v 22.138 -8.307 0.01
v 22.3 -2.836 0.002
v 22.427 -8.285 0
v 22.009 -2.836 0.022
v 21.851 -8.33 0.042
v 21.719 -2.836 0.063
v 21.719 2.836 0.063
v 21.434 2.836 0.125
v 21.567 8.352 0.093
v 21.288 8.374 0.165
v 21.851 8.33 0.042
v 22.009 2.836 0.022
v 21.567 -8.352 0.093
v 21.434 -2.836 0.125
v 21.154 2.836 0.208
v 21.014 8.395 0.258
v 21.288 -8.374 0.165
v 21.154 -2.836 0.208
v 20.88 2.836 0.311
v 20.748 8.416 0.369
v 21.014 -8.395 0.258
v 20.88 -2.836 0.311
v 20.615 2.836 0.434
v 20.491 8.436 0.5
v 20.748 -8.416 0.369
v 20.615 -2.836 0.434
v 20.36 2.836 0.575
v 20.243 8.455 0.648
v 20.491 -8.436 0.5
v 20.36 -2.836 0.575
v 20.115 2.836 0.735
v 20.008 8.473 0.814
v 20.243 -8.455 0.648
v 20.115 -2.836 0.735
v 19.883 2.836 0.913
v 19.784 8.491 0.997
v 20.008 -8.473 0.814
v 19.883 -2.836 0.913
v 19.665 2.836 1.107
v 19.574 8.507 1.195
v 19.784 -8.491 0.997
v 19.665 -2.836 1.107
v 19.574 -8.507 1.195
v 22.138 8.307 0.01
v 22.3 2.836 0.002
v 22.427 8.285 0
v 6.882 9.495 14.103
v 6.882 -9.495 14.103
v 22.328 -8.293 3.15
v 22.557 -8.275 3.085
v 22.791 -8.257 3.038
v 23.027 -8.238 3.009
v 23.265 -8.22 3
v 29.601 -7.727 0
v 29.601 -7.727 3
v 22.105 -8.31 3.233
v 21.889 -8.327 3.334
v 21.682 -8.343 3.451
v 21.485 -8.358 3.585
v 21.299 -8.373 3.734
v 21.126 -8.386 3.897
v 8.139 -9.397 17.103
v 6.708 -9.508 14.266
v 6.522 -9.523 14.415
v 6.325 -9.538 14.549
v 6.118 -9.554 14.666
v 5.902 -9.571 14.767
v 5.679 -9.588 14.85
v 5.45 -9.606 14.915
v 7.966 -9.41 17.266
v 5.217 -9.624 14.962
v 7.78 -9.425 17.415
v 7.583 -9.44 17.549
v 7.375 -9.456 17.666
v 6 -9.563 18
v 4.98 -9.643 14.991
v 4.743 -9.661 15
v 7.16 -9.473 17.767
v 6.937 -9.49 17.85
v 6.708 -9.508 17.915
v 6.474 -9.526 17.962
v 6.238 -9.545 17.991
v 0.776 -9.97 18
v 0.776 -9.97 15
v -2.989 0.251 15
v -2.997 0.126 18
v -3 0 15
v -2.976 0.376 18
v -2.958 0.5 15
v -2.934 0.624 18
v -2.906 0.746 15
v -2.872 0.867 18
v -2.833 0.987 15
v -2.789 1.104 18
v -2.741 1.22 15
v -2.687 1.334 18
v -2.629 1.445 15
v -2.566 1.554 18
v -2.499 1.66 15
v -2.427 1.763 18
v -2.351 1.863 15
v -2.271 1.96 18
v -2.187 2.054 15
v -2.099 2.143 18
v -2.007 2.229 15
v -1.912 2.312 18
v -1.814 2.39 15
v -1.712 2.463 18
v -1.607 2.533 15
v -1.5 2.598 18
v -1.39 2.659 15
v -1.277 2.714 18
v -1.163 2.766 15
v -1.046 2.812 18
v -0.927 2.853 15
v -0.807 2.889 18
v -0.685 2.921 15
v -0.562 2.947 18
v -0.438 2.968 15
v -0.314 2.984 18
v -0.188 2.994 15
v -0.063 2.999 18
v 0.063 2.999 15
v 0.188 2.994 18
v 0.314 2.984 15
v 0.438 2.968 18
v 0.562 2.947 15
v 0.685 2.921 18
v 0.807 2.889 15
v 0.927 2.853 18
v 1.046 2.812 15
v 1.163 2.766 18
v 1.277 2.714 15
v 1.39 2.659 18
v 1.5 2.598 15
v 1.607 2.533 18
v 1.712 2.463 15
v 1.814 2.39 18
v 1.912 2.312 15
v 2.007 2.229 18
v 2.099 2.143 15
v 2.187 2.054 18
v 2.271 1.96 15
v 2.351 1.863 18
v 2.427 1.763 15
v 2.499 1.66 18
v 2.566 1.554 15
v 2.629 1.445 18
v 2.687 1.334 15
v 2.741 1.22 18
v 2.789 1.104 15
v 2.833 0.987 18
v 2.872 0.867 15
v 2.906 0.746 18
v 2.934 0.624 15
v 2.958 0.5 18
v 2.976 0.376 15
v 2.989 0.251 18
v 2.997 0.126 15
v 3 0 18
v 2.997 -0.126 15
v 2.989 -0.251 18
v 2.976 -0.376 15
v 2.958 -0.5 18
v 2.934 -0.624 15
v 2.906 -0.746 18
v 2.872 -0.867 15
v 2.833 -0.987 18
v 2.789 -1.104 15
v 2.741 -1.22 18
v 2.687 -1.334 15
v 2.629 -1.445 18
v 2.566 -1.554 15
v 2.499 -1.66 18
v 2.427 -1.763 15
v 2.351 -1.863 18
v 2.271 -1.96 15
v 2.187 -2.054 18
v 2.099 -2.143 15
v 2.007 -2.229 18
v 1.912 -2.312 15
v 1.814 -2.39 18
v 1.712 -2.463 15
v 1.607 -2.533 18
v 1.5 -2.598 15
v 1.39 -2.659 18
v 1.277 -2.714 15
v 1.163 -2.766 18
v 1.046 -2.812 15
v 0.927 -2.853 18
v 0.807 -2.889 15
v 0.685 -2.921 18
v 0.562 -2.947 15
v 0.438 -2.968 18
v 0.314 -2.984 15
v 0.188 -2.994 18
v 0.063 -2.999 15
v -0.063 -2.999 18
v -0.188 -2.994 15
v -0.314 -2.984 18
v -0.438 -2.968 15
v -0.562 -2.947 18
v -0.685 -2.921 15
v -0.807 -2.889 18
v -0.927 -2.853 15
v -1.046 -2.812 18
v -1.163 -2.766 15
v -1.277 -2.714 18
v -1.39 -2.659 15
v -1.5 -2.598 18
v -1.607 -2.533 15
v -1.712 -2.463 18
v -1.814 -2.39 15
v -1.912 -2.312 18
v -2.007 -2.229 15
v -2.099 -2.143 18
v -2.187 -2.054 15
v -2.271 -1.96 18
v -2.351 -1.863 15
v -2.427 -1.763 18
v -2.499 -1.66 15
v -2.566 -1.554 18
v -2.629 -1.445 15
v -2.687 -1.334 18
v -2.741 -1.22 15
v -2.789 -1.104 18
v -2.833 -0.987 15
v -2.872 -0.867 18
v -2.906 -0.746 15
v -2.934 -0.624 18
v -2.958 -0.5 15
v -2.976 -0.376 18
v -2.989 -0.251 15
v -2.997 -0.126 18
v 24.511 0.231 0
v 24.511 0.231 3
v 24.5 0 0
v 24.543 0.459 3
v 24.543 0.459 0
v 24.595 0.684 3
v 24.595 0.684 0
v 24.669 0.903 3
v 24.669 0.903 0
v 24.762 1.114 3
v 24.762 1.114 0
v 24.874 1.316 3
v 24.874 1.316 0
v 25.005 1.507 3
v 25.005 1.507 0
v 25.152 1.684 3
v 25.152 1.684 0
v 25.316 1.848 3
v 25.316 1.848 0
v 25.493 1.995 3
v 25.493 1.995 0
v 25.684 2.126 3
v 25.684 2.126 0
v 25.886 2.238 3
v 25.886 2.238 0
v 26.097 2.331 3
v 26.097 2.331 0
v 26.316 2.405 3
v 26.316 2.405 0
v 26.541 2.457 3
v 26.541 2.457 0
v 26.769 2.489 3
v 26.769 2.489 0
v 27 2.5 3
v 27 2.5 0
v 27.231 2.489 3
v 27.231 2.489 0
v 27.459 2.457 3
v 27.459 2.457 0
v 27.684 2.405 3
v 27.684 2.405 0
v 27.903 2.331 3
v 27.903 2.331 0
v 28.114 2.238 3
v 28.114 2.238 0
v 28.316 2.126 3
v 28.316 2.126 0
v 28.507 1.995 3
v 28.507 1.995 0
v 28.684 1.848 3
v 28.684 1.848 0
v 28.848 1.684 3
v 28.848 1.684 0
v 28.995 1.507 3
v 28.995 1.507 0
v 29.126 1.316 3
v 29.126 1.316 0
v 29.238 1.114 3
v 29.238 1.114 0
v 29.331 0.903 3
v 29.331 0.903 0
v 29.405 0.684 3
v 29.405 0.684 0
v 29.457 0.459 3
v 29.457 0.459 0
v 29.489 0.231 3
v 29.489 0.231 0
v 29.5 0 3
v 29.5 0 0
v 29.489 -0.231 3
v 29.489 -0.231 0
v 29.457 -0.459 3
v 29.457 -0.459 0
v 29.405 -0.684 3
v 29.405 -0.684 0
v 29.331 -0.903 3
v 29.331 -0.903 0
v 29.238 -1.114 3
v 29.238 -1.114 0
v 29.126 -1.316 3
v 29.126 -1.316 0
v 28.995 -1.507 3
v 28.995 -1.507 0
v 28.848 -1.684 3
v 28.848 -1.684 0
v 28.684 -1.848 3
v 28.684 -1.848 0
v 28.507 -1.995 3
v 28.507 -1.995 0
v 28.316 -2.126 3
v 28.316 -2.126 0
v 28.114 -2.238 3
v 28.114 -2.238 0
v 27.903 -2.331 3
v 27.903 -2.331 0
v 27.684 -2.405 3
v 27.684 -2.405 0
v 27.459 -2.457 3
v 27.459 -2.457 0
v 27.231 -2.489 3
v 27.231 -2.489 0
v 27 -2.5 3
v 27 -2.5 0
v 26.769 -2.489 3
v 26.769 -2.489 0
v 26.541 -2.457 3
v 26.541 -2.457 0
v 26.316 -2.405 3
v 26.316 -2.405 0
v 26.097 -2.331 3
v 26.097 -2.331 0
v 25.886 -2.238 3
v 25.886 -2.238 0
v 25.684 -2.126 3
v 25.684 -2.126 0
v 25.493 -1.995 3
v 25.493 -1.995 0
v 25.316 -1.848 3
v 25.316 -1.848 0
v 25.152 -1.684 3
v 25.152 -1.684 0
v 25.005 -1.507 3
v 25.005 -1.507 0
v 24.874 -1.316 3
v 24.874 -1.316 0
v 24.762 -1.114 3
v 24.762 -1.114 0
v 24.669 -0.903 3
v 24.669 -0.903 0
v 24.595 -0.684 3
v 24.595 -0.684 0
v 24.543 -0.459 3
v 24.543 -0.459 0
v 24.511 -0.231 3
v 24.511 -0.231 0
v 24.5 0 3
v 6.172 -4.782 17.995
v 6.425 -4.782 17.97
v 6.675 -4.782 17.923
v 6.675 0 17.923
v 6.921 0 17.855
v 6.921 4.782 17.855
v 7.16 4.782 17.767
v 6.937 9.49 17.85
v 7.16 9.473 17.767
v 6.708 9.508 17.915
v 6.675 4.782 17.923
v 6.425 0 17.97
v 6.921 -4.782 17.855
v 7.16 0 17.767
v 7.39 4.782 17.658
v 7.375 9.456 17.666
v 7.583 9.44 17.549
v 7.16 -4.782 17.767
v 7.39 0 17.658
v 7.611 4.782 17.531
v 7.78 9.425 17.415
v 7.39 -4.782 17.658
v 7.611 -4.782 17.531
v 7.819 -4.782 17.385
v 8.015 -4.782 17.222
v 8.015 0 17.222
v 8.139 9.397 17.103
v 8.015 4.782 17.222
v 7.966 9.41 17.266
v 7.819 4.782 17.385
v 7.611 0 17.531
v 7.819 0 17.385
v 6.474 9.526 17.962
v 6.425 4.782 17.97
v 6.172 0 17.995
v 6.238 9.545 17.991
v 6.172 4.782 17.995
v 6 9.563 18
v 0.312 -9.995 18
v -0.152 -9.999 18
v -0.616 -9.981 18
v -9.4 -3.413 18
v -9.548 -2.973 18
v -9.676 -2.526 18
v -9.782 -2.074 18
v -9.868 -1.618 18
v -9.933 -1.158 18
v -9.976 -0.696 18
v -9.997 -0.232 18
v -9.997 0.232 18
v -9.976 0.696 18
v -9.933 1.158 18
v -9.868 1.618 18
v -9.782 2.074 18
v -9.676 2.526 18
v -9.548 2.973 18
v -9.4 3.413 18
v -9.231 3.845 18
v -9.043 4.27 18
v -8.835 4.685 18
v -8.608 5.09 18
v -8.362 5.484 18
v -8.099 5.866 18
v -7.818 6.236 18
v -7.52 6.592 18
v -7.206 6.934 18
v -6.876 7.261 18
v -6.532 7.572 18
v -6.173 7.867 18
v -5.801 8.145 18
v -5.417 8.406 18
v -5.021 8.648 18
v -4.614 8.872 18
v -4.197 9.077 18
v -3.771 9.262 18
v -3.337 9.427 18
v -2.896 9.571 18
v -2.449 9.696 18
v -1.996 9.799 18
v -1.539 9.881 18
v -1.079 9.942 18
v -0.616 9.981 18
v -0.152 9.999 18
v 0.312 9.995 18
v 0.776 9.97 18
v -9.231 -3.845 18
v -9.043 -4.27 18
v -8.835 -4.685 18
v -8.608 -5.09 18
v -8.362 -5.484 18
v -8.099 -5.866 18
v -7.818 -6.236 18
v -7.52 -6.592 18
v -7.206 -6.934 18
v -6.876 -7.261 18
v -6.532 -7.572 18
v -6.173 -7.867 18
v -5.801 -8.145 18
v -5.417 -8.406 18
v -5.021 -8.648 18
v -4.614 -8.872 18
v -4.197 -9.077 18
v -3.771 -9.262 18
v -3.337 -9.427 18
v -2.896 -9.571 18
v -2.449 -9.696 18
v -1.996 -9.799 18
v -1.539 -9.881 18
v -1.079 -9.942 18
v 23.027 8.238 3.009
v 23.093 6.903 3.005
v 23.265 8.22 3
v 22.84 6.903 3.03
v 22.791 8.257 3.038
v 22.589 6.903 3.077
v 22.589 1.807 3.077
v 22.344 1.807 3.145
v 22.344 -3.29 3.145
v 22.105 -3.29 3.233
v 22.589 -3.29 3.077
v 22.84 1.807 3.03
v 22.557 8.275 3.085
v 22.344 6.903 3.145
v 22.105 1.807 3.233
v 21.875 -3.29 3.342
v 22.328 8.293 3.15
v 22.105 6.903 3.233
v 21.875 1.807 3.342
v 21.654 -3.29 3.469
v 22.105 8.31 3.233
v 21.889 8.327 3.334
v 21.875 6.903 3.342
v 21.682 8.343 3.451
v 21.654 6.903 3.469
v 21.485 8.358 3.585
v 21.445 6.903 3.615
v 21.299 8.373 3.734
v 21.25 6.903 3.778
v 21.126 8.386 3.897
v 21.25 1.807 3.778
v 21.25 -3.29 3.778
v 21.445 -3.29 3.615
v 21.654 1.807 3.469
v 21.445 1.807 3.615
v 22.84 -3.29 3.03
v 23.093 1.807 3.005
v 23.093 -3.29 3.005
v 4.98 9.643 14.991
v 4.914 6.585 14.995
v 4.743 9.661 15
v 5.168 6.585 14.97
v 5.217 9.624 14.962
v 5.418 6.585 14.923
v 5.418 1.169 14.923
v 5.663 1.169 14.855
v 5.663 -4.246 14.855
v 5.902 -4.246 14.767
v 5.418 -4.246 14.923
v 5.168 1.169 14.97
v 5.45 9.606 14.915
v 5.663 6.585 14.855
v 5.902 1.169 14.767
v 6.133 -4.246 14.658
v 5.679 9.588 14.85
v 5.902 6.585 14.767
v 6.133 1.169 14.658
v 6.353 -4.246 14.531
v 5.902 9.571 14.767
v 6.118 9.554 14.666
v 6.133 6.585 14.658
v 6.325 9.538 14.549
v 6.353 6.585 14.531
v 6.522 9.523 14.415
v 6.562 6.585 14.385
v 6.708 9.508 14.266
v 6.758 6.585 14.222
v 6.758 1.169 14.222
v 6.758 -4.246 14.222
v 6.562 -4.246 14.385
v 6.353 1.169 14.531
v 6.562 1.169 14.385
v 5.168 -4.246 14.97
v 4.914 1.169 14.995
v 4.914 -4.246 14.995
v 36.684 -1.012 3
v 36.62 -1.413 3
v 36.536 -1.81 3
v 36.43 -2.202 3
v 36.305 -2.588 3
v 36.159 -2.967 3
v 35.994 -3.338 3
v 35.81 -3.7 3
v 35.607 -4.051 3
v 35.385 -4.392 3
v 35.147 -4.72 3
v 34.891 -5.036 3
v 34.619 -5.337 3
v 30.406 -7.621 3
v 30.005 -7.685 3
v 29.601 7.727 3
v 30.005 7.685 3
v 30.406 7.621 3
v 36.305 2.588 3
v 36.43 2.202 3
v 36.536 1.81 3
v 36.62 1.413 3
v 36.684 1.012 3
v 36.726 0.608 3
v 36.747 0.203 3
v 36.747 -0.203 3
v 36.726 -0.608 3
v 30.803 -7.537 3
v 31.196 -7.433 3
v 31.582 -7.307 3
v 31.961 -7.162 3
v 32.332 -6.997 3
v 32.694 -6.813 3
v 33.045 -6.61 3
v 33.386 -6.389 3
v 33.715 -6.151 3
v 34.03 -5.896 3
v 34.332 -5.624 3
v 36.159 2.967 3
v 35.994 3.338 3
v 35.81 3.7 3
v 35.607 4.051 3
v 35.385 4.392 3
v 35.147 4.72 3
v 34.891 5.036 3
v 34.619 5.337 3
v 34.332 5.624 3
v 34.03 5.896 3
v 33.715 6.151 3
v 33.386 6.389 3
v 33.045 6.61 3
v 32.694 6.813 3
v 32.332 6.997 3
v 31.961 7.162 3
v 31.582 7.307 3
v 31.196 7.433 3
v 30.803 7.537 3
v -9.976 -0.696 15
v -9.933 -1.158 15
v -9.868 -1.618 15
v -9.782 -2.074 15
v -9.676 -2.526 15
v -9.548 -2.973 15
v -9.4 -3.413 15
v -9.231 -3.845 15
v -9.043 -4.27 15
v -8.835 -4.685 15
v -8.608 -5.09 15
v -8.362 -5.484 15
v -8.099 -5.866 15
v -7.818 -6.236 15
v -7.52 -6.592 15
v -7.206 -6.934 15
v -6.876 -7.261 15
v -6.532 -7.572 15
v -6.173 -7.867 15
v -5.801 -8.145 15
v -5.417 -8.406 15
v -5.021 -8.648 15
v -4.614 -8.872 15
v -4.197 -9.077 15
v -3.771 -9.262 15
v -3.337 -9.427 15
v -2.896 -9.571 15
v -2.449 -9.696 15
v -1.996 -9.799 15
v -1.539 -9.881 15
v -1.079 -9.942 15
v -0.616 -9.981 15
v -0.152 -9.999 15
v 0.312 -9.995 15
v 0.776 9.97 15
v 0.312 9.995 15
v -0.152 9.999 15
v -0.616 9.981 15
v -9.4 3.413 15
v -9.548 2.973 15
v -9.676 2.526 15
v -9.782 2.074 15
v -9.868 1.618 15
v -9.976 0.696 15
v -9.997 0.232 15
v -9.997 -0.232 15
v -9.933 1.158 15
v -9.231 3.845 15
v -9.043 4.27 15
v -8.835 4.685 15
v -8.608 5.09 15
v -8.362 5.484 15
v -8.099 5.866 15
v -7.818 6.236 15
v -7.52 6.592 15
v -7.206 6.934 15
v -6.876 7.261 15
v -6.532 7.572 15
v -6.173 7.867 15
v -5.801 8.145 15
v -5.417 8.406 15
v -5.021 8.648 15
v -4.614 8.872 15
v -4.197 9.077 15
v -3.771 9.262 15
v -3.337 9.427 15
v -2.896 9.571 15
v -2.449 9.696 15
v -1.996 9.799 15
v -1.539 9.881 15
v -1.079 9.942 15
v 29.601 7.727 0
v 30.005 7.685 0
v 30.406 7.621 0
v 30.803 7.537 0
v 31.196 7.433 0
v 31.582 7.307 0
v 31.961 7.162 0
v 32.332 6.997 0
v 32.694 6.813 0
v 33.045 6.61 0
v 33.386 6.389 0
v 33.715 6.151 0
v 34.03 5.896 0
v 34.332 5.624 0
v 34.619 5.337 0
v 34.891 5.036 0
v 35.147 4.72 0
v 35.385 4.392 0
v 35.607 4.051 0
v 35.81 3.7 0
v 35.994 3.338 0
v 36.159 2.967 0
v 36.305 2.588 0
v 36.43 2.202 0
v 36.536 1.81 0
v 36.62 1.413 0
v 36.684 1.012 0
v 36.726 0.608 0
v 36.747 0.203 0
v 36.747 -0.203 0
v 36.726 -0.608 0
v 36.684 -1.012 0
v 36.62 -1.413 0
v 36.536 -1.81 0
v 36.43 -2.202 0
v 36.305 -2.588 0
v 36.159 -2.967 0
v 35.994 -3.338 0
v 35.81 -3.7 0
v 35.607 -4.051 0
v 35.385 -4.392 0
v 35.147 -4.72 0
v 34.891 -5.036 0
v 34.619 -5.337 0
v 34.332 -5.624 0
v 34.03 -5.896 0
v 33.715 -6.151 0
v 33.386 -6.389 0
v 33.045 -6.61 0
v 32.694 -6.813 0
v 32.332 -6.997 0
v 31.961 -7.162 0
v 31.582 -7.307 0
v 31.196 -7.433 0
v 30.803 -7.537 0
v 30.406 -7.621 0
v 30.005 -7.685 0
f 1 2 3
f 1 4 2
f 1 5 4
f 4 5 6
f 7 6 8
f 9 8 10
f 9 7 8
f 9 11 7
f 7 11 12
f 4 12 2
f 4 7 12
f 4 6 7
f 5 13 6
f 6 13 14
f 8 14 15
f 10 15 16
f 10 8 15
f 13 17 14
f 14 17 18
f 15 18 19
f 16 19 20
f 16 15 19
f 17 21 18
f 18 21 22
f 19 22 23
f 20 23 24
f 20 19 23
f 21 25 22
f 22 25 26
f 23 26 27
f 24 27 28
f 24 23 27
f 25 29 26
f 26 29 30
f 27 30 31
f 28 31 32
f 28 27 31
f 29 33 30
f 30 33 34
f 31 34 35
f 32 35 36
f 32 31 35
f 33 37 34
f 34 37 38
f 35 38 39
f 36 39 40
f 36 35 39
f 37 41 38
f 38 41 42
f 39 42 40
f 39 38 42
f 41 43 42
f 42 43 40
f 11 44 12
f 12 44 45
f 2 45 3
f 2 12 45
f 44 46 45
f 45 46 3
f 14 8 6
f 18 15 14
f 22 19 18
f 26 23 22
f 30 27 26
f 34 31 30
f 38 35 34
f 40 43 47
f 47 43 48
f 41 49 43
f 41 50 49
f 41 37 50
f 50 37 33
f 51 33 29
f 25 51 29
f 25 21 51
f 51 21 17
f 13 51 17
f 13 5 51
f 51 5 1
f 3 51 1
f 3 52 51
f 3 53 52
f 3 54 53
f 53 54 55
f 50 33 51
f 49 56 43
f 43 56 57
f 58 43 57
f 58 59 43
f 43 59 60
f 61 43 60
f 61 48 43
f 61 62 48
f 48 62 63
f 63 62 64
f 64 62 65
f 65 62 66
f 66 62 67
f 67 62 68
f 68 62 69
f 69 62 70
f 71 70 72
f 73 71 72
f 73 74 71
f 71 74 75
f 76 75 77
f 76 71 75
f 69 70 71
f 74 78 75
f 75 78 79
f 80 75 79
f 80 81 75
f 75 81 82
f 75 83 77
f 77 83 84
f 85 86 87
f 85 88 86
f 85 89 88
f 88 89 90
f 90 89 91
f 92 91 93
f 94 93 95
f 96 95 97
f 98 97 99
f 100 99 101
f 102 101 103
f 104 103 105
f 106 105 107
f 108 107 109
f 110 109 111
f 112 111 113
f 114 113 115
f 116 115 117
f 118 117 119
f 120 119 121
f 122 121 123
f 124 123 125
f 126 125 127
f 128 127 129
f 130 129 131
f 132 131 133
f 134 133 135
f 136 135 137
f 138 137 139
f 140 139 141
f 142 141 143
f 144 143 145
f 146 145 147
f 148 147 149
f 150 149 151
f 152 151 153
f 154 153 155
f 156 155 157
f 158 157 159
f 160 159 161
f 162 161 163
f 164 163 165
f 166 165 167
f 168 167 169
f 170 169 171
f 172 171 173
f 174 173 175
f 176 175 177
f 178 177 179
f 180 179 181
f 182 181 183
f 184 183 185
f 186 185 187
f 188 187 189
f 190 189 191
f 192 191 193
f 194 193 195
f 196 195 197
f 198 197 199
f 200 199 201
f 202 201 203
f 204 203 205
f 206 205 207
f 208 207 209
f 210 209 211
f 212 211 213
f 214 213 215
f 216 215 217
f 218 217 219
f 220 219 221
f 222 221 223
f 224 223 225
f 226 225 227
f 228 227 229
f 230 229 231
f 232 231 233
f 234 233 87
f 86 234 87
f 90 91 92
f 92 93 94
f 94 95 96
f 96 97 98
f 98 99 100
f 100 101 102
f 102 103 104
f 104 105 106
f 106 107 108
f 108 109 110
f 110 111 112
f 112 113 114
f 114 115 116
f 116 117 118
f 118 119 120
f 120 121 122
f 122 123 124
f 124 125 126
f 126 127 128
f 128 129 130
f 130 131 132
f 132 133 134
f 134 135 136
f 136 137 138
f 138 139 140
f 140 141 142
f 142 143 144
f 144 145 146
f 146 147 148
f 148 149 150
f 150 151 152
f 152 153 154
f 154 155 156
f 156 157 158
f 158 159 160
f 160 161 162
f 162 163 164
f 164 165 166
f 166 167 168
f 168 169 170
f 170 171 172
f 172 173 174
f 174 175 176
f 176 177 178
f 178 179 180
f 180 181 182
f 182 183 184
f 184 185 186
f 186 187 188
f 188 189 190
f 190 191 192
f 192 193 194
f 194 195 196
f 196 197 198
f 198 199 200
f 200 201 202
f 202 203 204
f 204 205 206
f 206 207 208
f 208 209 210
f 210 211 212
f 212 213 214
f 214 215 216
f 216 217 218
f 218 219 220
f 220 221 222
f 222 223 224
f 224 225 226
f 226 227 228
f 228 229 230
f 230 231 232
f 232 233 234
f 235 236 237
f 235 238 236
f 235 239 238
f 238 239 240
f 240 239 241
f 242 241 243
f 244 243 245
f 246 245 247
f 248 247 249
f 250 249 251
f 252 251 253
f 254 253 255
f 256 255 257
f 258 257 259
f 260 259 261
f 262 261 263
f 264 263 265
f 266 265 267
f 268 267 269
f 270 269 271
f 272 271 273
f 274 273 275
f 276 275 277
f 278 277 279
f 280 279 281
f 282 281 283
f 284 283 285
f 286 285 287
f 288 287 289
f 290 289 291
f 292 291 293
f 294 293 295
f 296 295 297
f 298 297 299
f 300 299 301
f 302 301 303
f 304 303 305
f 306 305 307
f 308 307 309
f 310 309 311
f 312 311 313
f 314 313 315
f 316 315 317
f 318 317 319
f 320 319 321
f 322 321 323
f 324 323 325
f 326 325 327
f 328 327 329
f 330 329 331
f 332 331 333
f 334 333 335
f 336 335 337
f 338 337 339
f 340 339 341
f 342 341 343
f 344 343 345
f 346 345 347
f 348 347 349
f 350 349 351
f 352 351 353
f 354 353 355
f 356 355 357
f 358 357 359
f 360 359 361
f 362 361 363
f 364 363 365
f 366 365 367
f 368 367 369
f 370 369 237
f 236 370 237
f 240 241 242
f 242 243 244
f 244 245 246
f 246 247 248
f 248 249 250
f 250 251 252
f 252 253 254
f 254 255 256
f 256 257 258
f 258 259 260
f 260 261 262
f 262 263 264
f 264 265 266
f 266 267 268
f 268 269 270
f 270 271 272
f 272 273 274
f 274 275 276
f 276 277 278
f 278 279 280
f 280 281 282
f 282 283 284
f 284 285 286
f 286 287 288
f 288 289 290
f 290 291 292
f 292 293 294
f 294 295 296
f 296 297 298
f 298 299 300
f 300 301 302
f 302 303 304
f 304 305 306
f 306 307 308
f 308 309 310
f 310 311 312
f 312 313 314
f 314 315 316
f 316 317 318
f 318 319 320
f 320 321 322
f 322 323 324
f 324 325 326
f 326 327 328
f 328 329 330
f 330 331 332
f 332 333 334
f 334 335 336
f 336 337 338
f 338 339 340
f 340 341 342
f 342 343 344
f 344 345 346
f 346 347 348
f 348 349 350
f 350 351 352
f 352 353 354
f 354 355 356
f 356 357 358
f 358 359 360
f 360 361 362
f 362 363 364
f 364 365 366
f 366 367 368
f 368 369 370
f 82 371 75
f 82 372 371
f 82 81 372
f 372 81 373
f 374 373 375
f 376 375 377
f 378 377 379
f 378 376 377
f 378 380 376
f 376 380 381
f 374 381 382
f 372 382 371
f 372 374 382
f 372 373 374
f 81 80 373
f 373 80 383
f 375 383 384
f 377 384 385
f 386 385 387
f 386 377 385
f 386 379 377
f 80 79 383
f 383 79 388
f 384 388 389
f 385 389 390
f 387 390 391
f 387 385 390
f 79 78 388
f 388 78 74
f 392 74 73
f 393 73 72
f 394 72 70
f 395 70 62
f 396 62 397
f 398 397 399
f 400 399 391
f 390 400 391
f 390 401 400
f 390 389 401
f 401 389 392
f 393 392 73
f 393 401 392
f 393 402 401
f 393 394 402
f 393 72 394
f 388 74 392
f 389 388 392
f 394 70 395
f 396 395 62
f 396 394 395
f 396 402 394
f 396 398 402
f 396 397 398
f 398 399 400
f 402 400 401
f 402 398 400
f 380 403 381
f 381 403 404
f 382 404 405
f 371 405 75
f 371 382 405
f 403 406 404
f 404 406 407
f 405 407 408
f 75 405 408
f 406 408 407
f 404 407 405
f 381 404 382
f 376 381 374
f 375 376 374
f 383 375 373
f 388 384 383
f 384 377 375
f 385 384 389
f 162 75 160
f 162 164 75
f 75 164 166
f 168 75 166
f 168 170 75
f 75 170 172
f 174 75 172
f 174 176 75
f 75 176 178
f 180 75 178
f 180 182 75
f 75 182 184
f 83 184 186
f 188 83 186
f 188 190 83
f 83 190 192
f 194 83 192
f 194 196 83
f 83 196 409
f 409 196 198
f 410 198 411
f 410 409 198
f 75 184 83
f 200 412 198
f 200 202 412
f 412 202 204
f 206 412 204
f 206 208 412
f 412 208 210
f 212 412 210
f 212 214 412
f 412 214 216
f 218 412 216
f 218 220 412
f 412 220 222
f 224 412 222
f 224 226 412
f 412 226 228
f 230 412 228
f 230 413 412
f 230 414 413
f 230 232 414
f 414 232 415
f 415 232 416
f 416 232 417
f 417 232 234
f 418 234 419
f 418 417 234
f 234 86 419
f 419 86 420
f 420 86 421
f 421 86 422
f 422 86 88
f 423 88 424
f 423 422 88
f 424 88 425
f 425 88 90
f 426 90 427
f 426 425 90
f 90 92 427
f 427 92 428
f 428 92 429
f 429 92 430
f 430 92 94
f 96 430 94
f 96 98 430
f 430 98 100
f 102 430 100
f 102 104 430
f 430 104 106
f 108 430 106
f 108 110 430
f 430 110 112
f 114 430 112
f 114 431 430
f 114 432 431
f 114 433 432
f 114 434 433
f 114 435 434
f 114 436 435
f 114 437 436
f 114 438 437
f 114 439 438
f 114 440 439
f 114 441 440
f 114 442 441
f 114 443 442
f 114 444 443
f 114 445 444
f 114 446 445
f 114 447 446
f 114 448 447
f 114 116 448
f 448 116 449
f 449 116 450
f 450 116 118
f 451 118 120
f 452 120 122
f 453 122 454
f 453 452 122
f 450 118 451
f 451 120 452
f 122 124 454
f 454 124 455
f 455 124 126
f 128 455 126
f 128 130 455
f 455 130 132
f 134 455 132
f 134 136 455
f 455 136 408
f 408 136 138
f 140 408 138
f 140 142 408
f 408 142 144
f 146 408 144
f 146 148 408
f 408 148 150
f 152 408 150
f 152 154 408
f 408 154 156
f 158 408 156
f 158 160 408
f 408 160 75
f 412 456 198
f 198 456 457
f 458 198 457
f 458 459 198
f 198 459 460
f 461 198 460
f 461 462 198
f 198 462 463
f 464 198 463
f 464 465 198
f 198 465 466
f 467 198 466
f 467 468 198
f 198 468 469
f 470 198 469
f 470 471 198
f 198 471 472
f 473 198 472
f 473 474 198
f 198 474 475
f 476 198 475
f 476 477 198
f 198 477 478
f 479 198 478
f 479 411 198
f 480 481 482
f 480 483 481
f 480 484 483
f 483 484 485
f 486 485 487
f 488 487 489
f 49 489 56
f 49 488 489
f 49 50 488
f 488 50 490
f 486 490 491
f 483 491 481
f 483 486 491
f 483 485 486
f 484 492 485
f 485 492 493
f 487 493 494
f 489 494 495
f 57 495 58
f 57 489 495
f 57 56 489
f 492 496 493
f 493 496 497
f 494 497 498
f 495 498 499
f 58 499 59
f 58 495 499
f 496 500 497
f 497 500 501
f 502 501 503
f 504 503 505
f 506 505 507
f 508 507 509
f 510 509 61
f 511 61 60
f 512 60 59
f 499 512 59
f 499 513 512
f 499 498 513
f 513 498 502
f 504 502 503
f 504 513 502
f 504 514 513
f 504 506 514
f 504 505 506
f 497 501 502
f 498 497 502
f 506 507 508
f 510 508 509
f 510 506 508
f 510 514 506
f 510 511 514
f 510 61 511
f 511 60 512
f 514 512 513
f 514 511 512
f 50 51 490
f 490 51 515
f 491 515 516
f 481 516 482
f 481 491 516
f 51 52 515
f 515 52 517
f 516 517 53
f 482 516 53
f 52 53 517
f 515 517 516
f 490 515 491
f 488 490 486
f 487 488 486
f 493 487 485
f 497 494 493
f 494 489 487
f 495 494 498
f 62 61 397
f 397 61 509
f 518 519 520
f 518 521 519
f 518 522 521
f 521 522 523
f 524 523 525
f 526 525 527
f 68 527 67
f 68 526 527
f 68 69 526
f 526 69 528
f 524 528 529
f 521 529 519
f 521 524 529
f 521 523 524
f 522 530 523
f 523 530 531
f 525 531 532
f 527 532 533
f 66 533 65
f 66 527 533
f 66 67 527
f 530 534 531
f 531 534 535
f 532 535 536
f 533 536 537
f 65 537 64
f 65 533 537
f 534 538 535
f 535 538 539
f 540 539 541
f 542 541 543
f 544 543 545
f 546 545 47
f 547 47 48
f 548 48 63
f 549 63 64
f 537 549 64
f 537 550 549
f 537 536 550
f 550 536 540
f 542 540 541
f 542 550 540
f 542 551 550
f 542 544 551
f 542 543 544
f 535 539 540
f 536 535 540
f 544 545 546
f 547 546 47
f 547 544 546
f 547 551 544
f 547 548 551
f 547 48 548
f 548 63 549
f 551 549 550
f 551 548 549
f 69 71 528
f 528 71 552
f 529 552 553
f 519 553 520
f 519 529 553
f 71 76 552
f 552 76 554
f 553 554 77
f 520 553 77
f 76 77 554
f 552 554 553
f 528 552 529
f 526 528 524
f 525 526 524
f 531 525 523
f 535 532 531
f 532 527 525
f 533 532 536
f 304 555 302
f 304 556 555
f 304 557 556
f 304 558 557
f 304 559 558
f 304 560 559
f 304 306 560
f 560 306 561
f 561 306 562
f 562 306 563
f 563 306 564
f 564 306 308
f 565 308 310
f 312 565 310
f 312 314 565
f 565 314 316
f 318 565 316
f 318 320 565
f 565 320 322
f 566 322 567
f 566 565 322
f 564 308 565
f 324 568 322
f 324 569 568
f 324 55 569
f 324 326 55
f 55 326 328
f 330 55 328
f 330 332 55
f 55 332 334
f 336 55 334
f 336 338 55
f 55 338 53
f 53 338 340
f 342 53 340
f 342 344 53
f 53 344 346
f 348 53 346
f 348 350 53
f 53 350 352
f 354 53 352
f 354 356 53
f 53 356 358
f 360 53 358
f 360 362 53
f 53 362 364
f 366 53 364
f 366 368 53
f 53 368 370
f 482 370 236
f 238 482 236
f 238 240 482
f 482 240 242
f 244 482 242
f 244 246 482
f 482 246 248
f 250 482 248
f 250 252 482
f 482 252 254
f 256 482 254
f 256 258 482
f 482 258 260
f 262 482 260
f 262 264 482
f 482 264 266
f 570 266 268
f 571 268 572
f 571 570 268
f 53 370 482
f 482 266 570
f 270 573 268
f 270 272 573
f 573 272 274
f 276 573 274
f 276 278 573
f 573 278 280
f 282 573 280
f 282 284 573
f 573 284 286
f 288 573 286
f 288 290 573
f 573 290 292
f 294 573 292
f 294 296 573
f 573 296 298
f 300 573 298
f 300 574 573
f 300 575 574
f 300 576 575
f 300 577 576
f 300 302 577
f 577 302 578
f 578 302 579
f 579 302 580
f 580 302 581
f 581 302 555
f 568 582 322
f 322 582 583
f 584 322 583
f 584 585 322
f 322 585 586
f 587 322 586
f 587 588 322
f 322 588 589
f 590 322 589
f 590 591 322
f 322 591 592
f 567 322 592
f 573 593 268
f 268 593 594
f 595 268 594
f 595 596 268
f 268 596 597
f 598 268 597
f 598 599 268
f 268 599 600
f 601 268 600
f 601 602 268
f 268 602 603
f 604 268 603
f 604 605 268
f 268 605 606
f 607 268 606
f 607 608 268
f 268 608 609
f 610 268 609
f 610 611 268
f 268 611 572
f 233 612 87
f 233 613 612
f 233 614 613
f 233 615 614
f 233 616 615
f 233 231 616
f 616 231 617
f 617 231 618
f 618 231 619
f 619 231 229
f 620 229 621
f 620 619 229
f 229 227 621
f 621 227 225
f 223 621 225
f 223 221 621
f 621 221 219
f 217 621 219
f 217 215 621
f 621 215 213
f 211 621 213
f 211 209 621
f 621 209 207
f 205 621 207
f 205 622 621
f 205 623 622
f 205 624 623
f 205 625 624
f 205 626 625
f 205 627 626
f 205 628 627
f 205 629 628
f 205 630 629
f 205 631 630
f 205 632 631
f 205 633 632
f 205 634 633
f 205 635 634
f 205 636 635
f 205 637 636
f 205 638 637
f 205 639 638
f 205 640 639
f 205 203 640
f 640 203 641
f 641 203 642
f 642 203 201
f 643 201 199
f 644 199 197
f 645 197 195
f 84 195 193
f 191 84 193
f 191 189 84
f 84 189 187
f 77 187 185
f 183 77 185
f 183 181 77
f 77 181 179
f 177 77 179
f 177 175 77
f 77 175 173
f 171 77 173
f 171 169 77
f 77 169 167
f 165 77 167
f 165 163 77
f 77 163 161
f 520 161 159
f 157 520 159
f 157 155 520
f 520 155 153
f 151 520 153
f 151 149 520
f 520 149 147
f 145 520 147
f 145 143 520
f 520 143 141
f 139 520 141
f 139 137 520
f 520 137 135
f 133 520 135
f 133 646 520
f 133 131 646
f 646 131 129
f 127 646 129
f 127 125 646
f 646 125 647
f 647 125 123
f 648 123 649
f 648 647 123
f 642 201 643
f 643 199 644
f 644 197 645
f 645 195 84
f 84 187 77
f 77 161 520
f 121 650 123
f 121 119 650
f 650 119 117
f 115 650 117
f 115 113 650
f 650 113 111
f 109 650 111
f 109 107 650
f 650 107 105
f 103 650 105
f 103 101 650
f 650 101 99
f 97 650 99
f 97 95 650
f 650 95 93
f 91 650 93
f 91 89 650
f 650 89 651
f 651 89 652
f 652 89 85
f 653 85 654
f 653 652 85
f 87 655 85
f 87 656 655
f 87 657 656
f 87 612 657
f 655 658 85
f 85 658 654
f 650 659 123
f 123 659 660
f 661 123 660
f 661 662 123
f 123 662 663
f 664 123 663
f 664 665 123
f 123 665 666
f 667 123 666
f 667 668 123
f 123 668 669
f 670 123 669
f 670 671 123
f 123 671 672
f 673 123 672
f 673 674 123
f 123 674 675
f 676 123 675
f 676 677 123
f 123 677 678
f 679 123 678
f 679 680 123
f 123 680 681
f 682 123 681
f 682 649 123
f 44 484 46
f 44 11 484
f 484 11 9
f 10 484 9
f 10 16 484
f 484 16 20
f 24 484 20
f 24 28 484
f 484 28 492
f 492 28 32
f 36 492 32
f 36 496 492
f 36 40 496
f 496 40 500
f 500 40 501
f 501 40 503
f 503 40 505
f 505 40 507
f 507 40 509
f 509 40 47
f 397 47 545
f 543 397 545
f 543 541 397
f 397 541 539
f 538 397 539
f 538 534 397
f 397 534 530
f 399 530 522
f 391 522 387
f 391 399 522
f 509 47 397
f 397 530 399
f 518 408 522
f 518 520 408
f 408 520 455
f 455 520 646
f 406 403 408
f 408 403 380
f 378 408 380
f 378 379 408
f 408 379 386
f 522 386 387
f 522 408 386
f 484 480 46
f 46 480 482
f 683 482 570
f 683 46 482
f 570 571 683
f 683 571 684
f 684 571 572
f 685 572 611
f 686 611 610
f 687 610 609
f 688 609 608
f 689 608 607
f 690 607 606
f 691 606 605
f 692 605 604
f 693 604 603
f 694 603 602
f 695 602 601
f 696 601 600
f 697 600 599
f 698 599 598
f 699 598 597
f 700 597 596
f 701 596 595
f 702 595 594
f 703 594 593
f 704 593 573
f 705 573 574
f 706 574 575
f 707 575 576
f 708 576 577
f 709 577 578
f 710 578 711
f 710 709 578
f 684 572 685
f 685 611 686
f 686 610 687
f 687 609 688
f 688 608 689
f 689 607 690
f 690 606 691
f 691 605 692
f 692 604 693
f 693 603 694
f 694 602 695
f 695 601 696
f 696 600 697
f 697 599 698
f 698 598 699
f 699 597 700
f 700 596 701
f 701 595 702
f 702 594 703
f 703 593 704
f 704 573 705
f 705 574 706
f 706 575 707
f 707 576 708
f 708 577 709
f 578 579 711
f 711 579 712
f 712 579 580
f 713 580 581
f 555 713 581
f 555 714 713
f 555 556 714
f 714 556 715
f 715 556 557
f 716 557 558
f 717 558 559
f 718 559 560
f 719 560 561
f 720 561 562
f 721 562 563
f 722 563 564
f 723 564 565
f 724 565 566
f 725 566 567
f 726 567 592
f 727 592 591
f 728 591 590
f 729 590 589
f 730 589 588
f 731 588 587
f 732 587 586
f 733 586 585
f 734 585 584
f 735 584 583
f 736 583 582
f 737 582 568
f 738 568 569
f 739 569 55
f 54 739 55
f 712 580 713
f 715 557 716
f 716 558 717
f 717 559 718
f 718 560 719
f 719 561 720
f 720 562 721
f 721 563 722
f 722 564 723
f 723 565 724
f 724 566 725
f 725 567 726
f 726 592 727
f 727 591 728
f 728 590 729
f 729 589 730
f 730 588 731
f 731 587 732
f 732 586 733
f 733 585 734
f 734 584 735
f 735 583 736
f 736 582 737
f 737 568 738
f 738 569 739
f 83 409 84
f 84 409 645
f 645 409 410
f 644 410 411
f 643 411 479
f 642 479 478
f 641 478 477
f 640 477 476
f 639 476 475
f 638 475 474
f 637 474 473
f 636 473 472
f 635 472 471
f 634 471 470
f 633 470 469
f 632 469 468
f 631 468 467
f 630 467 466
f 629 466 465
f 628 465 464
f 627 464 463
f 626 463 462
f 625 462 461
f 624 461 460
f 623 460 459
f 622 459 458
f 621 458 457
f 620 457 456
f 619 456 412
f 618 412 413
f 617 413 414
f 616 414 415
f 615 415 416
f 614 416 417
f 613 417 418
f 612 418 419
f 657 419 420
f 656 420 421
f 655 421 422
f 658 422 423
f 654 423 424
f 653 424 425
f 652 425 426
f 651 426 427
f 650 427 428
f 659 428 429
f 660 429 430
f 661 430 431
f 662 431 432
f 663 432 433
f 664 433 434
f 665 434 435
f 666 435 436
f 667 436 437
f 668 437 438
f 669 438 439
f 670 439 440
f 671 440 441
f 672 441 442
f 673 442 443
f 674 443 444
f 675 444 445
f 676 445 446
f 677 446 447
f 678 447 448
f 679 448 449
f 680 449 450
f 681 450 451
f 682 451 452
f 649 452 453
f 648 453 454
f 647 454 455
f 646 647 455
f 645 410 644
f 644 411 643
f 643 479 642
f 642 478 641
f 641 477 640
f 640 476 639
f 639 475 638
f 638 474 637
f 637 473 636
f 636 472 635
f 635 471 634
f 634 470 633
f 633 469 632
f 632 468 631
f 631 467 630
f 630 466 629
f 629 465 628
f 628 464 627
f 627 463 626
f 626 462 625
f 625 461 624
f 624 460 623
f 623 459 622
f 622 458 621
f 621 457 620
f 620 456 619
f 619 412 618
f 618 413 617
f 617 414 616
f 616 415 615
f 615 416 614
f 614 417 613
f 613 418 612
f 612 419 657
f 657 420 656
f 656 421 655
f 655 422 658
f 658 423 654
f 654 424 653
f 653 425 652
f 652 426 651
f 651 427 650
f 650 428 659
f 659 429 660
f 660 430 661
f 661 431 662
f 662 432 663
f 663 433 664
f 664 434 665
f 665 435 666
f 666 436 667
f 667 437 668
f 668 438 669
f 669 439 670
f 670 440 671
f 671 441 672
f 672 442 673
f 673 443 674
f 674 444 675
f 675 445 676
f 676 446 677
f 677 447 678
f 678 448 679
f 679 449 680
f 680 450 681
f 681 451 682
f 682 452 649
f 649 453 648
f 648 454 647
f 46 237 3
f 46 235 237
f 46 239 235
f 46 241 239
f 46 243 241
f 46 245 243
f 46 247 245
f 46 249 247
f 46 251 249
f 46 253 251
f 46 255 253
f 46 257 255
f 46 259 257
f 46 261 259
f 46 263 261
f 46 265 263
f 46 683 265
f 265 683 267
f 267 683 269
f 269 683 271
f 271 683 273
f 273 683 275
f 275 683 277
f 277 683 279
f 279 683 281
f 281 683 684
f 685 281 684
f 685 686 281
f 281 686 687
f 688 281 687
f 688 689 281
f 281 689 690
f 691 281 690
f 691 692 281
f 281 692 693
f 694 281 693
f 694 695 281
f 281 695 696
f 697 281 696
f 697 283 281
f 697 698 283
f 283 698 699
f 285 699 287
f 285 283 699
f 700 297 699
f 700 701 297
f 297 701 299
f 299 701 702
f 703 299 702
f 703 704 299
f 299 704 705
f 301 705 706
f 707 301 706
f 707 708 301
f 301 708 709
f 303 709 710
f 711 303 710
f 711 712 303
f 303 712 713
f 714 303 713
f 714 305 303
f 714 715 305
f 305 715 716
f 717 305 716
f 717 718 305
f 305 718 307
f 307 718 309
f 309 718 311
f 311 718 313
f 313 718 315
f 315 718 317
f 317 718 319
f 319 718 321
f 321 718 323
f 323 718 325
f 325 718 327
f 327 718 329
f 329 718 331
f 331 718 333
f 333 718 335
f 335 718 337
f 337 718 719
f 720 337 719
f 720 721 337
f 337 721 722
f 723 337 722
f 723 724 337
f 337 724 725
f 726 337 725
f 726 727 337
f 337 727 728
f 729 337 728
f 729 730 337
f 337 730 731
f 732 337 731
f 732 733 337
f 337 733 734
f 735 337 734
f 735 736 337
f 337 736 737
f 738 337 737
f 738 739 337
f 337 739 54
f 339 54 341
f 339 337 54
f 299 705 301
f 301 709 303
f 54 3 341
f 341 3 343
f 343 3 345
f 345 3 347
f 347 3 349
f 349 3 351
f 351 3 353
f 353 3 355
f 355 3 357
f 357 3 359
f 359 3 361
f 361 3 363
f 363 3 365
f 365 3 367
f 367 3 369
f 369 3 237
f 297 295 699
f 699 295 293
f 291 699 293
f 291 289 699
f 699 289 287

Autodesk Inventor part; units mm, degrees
ref_plane "YZ Plane" through (0, 0, 0) normal (1, 0, 0) x (0, 1, 0)
sketch "Body" plane through (0, 0, 0) normal (0, 0, 1) x (1, 0, 0)
  circle A0 centre (0, 0) radius 10
  line L0 (0, 0) -> (29, 0) construction
  circle A1 centre (29, 0) radius 7.75
  line L1 (0.7759, 9.9699) -> (29.6013, 7.7266)
  line L2 (0.7759, -9.9699) -> (29.6013, -7.7266)
  dimension "SmallDiameter" = 20
  dimension "d1" = 29
  dimension "LargeDiameter" = 15.5
extrude "BodyFeature" add sketch "Body" along normal blind 18
ref_plane "SideProfilePlane" through (0, 12, 0) normal (0, 1, 0) x (-1, 0, 0)
sketch "SideProfile" plane through (0, 12, 0) normal (0, 1, 0) x (-1, 0, 0)
  line L0 (10, 18) -> (-0.7759, 18) construction
  line L1 (10, 18) -> (10, 15)
  line L2 (10, 15) -> (-6, 15)
  line L3 (-6, 15) -> (-20.75, 0)
  line L4 (-20.75, 0) -> (-36.75, 0)
  line L5 (-29.6013, 0) -> (-0.7759, 0) construction
  line L6 (-36.75, 0) -> (-36.75, 18) construction
  line L7 (-29.6013, 18) -> (-36.75, 18) construction
  line L8 (-29.6013, 18) -> (-0.7759, 18) construction
  line L9 (-22.0074, 3) -> (-7.2574, 18)
  line L10 (-36.75, 3) -> (-22.0074, 3)
  line L11 (-36.75, 0) -> (-36.75, 3)
  line L12 (10, 18) -> (-7.2574, 18)
  dimension "Thickness" = 3
  dimension "d15" = 3
  dimension "d16" = 3
  dimension "d17" = 16
  dimension "d18" = 16
extrude "SideProfileFeature" cut sketch "SideProfile" against normal through all keep common part
fillet "BodyFilletsFeate" radius 3 3 edges at (6, 0, 15) (22.0074, 0, 3) (7.2574, 0, 18)
ref_plane "HeadMountPlane" through (29, 0, 3) normal (0, 0, 1) x (1, 0, 0)
sketch "HeadMountHole" plane through (29, 0, 3) normal (0, 0, 1) x (1, 0, 0)
  circle A0 centre (-2, 0) radius 3.25
  arc A1 (0.6013, -7.7266) -> (0.6013, 7.7266) centre (0, 0) ccw construction
  line L0 (-2, 0) -> (0, 0) construction
  point P0 (-29, 0)
  dimension "d307" = 2
  dimension "d308" = 6.5
hole "HeadMountHoleFeature" at (27, 0, 3) direction (0, 0, -1) diameter 5 end through all
sketch "BodyMountHole" plane through (0, 0, 18) normal (0, 0, 1) x (1, 0, 0)
  arc A0 (0.7759, 9.9699) -> (0.7759, -9.9699) centre (0, 0) ccw projected
hole "BodyMountHoleFeature" at (0, 0, 18) direction (0, 0, -1) diameter 6 end through all
fillet "BodyFillets2Feature" radius 4 1 edges at (20.75, 0, 0)
equation "\"d16\" = Thickness"
properties part number "ShoulderConnectorBodyFinal"
